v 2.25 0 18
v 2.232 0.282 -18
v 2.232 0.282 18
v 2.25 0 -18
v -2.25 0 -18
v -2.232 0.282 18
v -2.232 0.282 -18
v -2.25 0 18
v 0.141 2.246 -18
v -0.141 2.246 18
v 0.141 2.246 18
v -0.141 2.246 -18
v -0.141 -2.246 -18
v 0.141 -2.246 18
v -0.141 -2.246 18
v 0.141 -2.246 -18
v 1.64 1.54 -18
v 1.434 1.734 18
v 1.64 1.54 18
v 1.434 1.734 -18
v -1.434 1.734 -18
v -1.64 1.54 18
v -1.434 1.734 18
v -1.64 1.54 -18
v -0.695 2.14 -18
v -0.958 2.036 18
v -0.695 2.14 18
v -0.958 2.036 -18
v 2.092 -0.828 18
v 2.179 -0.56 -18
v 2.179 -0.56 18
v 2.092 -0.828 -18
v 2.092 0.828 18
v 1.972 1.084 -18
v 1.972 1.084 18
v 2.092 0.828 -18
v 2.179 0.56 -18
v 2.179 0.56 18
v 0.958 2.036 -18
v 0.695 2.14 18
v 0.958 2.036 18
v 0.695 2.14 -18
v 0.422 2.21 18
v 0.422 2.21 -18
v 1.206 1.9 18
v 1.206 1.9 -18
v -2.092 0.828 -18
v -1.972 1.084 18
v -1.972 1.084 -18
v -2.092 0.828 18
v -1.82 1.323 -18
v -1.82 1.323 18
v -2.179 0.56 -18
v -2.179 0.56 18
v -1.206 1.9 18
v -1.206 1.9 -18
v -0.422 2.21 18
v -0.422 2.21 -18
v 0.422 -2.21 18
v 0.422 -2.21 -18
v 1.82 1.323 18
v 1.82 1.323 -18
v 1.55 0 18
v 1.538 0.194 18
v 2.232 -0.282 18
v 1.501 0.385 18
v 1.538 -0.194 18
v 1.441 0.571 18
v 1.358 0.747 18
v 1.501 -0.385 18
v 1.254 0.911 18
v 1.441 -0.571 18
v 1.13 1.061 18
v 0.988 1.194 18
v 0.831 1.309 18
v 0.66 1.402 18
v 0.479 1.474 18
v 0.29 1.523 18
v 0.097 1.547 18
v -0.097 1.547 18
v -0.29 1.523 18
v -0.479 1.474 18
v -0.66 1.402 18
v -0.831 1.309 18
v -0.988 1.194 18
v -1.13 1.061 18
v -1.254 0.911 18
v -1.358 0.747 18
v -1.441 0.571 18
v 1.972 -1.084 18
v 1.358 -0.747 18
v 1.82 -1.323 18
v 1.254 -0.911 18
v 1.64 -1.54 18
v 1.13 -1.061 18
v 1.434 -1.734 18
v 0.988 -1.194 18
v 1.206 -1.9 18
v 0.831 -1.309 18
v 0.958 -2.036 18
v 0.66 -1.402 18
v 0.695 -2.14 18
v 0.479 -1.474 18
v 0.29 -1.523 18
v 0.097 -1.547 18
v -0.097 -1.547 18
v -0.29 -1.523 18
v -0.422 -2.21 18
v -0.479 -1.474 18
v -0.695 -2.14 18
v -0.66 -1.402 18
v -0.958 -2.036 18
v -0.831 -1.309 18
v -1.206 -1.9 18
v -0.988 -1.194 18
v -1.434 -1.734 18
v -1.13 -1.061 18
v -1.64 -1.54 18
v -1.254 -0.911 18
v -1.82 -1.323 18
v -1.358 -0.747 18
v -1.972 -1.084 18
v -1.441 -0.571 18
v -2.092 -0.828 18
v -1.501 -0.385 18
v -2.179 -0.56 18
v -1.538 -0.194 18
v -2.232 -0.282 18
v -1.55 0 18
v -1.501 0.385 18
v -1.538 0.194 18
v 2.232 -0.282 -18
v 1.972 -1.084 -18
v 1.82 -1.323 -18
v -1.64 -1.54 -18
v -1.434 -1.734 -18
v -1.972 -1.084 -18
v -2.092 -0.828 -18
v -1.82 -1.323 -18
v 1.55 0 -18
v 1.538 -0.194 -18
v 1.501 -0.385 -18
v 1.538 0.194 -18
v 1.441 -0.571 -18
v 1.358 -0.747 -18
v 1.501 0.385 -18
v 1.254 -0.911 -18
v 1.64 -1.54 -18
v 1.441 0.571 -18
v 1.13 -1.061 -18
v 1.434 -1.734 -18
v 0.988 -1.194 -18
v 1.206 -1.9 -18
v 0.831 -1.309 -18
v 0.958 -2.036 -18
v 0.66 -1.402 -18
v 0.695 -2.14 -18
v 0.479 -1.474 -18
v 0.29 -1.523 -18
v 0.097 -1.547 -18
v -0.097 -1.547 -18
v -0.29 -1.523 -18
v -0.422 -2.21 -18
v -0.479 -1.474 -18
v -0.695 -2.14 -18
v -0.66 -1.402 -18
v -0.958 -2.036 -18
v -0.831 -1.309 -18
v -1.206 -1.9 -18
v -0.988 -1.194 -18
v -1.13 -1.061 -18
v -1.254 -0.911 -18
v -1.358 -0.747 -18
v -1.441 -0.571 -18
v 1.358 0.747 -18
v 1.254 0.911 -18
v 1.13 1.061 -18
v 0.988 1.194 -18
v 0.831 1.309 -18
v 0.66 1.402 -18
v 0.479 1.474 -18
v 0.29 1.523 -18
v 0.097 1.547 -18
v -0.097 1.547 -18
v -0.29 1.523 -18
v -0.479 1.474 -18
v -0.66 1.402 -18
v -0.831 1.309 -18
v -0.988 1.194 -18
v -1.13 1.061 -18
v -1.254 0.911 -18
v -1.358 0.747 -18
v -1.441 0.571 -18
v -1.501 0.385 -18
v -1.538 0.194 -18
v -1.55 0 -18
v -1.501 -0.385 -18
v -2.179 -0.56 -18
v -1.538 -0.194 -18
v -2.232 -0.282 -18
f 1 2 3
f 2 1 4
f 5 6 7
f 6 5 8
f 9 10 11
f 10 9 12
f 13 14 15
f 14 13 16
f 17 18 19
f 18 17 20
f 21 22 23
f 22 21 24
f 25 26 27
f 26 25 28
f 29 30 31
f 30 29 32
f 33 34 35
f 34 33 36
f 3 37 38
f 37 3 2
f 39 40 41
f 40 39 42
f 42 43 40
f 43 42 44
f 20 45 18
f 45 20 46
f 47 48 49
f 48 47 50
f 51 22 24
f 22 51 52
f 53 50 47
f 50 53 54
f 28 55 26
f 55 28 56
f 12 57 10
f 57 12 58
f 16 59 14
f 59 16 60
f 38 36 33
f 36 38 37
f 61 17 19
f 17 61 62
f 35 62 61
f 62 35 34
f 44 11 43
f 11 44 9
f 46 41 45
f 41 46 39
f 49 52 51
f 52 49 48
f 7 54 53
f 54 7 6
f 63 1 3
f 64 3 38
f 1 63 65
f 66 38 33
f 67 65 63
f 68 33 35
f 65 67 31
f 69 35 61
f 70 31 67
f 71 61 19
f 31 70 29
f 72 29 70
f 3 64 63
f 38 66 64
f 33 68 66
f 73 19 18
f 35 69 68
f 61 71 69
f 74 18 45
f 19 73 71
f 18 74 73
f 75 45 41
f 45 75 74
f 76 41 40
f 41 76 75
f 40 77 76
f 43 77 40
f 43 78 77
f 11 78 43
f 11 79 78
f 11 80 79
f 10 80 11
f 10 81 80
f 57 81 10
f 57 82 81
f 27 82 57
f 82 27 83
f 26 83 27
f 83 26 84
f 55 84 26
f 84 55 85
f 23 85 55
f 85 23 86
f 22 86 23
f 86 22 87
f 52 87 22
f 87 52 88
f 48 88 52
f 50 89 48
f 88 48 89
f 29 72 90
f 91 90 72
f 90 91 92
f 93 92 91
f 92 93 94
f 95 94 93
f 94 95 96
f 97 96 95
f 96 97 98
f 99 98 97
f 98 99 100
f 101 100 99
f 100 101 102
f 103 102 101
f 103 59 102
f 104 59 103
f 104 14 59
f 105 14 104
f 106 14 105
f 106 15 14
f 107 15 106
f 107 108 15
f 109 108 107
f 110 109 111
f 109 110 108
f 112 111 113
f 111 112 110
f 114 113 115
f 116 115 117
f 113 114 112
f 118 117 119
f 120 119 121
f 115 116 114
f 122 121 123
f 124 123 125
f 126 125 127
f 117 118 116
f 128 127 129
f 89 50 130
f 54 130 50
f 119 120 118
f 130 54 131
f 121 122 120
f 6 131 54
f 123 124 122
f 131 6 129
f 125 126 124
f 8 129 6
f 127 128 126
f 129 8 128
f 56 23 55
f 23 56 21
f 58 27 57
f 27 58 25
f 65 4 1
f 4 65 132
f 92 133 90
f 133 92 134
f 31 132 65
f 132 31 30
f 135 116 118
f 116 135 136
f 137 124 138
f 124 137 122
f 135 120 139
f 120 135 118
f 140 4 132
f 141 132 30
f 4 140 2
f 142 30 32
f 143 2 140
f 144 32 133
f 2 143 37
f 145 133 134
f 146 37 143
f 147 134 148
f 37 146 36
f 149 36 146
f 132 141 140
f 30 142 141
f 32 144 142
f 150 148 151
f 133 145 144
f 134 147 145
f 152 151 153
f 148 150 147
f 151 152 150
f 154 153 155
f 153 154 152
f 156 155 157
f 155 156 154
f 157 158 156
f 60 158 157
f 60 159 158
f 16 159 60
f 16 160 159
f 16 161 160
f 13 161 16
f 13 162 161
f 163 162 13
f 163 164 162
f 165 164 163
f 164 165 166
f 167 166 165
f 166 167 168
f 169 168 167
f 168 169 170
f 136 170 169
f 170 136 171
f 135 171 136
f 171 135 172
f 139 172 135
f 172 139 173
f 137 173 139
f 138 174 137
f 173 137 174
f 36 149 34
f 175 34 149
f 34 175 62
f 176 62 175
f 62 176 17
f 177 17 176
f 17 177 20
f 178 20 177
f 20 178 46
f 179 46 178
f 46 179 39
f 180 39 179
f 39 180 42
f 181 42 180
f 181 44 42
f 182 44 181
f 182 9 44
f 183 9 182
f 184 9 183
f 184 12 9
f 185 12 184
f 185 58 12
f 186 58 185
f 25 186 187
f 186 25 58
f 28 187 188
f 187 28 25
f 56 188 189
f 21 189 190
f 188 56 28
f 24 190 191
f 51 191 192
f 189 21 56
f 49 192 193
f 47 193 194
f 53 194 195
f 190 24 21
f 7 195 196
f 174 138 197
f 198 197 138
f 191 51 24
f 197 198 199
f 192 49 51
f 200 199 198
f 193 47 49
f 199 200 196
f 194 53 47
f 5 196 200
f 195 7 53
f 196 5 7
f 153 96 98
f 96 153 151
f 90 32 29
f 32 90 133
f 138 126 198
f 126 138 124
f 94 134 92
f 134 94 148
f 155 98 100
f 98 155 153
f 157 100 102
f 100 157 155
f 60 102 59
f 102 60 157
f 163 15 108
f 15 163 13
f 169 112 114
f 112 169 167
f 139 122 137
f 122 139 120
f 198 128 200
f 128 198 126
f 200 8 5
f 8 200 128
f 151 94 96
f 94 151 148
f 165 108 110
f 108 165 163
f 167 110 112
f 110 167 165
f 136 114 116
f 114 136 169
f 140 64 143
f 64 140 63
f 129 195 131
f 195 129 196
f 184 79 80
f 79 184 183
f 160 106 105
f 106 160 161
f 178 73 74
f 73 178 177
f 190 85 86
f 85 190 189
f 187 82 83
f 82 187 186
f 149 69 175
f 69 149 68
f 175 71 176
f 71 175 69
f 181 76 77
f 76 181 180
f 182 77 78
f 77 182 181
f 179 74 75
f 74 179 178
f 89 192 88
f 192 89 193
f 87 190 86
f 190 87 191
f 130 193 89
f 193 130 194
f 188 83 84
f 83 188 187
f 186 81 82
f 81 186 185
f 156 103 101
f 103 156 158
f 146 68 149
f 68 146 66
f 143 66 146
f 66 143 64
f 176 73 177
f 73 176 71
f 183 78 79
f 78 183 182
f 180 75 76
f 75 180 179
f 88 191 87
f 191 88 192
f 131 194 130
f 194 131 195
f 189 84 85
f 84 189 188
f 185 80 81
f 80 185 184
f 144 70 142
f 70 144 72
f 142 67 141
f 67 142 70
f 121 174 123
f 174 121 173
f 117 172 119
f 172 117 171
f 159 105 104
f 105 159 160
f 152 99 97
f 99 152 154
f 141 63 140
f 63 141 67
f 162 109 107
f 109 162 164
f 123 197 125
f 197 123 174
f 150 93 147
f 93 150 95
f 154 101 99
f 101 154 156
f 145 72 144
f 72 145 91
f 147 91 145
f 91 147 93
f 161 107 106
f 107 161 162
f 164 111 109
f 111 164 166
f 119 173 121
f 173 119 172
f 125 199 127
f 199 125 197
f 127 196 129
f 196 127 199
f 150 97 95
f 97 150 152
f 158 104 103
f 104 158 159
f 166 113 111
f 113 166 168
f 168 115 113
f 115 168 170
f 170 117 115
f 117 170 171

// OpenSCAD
$fn = 50;


difference() {
	union() {
		translate(v = [0, 0, -18.0000000000]) {
			cylinder(h = 36, r = 2.2500000000);
		}
	}
	union() {
		translate(v = [0, 0, -100.0000000000]) {
			cylinder(h = 200, r = 1.5500000000);
		}
	}
}
